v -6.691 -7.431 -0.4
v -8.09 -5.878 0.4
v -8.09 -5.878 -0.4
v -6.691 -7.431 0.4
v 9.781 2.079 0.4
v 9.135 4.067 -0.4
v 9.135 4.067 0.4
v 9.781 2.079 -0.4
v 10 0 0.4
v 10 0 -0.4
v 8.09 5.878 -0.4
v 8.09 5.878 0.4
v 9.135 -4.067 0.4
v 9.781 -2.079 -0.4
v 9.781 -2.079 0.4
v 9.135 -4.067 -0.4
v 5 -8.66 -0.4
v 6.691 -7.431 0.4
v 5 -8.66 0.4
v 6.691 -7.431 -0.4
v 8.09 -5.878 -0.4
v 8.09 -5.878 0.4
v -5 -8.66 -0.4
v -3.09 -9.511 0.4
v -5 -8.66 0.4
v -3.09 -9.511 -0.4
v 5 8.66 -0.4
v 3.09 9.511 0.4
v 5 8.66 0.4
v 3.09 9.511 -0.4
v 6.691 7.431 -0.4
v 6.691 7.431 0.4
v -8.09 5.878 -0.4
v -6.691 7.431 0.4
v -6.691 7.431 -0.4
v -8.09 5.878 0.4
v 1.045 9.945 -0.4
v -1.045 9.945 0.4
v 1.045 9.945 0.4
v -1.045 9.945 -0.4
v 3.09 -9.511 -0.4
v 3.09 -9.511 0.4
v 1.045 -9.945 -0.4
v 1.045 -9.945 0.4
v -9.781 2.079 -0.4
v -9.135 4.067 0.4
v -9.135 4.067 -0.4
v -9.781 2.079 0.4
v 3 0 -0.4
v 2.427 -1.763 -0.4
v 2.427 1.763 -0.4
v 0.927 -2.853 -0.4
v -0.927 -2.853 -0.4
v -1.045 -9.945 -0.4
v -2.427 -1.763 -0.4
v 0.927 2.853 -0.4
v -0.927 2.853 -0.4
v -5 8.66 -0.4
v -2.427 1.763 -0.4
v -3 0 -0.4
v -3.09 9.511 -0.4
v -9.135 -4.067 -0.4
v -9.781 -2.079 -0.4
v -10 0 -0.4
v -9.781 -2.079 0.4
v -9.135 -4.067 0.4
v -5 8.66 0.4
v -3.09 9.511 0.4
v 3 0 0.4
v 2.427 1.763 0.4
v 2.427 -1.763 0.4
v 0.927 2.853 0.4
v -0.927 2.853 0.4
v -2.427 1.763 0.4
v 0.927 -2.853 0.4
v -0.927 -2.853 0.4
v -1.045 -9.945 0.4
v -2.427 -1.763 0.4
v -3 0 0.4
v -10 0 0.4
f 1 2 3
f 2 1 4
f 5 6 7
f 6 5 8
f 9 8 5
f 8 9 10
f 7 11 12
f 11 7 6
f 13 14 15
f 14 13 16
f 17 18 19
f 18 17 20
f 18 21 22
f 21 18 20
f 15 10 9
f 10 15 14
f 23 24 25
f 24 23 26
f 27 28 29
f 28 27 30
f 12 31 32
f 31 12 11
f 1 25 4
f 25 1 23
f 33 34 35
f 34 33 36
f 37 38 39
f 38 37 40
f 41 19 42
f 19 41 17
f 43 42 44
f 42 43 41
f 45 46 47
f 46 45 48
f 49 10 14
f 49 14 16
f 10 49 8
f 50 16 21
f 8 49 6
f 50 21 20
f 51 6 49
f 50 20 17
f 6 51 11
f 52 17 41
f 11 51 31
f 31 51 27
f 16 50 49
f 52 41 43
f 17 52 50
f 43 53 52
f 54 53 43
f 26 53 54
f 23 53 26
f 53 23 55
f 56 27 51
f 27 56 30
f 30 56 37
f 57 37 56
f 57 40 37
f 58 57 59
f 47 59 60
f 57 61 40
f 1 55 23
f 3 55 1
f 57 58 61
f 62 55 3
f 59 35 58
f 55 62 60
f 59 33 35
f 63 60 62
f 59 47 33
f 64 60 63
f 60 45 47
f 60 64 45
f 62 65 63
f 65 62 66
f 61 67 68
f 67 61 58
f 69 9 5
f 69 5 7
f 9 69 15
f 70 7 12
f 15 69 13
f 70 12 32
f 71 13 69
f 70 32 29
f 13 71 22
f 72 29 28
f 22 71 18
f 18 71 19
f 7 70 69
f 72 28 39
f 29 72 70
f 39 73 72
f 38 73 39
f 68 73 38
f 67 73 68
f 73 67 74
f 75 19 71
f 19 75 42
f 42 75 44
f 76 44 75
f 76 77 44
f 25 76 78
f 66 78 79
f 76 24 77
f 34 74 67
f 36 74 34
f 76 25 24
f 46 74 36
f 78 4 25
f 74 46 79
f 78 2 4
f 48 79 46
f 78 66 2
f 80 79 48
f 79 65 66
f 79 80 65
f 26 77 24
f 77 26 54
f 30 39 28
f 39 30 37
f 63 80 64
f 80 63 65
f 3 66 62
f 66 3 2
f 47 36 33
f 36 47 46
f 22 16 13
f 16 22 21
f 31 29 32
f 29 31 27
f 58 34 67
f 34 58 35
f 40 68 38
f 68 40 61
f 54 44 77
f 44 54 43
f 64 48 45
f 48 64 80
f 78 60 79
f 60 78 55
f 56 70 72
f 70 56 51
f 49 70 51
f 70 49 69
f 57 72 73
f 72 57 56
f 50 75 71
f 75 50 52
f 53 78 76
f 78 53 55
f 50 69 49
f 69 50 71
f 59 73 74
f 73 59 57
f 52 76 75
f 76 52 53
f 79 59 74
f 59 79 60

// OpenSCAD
// Spacer Ring Component
// Description: A flat, circular ring with a smooth surface and a central hole.
// Adjusted to match the original model with a thinner profile.

module spacer_ring() {
    difference() {
        // Outer cylinder (ring body) - Reduced thickness to match the original model
        cylinder(h=0.8, r=10, center=true); // Thickness reduced from 1 to 0.8
        // Inner cylinder (hole)
        translate([0, 0, -0.4]) cylinder(h=1.6, r=3, center=true); // Adjusted height to match thinner profile
    }
}

// Render the spacer ring
spacer_ring();
